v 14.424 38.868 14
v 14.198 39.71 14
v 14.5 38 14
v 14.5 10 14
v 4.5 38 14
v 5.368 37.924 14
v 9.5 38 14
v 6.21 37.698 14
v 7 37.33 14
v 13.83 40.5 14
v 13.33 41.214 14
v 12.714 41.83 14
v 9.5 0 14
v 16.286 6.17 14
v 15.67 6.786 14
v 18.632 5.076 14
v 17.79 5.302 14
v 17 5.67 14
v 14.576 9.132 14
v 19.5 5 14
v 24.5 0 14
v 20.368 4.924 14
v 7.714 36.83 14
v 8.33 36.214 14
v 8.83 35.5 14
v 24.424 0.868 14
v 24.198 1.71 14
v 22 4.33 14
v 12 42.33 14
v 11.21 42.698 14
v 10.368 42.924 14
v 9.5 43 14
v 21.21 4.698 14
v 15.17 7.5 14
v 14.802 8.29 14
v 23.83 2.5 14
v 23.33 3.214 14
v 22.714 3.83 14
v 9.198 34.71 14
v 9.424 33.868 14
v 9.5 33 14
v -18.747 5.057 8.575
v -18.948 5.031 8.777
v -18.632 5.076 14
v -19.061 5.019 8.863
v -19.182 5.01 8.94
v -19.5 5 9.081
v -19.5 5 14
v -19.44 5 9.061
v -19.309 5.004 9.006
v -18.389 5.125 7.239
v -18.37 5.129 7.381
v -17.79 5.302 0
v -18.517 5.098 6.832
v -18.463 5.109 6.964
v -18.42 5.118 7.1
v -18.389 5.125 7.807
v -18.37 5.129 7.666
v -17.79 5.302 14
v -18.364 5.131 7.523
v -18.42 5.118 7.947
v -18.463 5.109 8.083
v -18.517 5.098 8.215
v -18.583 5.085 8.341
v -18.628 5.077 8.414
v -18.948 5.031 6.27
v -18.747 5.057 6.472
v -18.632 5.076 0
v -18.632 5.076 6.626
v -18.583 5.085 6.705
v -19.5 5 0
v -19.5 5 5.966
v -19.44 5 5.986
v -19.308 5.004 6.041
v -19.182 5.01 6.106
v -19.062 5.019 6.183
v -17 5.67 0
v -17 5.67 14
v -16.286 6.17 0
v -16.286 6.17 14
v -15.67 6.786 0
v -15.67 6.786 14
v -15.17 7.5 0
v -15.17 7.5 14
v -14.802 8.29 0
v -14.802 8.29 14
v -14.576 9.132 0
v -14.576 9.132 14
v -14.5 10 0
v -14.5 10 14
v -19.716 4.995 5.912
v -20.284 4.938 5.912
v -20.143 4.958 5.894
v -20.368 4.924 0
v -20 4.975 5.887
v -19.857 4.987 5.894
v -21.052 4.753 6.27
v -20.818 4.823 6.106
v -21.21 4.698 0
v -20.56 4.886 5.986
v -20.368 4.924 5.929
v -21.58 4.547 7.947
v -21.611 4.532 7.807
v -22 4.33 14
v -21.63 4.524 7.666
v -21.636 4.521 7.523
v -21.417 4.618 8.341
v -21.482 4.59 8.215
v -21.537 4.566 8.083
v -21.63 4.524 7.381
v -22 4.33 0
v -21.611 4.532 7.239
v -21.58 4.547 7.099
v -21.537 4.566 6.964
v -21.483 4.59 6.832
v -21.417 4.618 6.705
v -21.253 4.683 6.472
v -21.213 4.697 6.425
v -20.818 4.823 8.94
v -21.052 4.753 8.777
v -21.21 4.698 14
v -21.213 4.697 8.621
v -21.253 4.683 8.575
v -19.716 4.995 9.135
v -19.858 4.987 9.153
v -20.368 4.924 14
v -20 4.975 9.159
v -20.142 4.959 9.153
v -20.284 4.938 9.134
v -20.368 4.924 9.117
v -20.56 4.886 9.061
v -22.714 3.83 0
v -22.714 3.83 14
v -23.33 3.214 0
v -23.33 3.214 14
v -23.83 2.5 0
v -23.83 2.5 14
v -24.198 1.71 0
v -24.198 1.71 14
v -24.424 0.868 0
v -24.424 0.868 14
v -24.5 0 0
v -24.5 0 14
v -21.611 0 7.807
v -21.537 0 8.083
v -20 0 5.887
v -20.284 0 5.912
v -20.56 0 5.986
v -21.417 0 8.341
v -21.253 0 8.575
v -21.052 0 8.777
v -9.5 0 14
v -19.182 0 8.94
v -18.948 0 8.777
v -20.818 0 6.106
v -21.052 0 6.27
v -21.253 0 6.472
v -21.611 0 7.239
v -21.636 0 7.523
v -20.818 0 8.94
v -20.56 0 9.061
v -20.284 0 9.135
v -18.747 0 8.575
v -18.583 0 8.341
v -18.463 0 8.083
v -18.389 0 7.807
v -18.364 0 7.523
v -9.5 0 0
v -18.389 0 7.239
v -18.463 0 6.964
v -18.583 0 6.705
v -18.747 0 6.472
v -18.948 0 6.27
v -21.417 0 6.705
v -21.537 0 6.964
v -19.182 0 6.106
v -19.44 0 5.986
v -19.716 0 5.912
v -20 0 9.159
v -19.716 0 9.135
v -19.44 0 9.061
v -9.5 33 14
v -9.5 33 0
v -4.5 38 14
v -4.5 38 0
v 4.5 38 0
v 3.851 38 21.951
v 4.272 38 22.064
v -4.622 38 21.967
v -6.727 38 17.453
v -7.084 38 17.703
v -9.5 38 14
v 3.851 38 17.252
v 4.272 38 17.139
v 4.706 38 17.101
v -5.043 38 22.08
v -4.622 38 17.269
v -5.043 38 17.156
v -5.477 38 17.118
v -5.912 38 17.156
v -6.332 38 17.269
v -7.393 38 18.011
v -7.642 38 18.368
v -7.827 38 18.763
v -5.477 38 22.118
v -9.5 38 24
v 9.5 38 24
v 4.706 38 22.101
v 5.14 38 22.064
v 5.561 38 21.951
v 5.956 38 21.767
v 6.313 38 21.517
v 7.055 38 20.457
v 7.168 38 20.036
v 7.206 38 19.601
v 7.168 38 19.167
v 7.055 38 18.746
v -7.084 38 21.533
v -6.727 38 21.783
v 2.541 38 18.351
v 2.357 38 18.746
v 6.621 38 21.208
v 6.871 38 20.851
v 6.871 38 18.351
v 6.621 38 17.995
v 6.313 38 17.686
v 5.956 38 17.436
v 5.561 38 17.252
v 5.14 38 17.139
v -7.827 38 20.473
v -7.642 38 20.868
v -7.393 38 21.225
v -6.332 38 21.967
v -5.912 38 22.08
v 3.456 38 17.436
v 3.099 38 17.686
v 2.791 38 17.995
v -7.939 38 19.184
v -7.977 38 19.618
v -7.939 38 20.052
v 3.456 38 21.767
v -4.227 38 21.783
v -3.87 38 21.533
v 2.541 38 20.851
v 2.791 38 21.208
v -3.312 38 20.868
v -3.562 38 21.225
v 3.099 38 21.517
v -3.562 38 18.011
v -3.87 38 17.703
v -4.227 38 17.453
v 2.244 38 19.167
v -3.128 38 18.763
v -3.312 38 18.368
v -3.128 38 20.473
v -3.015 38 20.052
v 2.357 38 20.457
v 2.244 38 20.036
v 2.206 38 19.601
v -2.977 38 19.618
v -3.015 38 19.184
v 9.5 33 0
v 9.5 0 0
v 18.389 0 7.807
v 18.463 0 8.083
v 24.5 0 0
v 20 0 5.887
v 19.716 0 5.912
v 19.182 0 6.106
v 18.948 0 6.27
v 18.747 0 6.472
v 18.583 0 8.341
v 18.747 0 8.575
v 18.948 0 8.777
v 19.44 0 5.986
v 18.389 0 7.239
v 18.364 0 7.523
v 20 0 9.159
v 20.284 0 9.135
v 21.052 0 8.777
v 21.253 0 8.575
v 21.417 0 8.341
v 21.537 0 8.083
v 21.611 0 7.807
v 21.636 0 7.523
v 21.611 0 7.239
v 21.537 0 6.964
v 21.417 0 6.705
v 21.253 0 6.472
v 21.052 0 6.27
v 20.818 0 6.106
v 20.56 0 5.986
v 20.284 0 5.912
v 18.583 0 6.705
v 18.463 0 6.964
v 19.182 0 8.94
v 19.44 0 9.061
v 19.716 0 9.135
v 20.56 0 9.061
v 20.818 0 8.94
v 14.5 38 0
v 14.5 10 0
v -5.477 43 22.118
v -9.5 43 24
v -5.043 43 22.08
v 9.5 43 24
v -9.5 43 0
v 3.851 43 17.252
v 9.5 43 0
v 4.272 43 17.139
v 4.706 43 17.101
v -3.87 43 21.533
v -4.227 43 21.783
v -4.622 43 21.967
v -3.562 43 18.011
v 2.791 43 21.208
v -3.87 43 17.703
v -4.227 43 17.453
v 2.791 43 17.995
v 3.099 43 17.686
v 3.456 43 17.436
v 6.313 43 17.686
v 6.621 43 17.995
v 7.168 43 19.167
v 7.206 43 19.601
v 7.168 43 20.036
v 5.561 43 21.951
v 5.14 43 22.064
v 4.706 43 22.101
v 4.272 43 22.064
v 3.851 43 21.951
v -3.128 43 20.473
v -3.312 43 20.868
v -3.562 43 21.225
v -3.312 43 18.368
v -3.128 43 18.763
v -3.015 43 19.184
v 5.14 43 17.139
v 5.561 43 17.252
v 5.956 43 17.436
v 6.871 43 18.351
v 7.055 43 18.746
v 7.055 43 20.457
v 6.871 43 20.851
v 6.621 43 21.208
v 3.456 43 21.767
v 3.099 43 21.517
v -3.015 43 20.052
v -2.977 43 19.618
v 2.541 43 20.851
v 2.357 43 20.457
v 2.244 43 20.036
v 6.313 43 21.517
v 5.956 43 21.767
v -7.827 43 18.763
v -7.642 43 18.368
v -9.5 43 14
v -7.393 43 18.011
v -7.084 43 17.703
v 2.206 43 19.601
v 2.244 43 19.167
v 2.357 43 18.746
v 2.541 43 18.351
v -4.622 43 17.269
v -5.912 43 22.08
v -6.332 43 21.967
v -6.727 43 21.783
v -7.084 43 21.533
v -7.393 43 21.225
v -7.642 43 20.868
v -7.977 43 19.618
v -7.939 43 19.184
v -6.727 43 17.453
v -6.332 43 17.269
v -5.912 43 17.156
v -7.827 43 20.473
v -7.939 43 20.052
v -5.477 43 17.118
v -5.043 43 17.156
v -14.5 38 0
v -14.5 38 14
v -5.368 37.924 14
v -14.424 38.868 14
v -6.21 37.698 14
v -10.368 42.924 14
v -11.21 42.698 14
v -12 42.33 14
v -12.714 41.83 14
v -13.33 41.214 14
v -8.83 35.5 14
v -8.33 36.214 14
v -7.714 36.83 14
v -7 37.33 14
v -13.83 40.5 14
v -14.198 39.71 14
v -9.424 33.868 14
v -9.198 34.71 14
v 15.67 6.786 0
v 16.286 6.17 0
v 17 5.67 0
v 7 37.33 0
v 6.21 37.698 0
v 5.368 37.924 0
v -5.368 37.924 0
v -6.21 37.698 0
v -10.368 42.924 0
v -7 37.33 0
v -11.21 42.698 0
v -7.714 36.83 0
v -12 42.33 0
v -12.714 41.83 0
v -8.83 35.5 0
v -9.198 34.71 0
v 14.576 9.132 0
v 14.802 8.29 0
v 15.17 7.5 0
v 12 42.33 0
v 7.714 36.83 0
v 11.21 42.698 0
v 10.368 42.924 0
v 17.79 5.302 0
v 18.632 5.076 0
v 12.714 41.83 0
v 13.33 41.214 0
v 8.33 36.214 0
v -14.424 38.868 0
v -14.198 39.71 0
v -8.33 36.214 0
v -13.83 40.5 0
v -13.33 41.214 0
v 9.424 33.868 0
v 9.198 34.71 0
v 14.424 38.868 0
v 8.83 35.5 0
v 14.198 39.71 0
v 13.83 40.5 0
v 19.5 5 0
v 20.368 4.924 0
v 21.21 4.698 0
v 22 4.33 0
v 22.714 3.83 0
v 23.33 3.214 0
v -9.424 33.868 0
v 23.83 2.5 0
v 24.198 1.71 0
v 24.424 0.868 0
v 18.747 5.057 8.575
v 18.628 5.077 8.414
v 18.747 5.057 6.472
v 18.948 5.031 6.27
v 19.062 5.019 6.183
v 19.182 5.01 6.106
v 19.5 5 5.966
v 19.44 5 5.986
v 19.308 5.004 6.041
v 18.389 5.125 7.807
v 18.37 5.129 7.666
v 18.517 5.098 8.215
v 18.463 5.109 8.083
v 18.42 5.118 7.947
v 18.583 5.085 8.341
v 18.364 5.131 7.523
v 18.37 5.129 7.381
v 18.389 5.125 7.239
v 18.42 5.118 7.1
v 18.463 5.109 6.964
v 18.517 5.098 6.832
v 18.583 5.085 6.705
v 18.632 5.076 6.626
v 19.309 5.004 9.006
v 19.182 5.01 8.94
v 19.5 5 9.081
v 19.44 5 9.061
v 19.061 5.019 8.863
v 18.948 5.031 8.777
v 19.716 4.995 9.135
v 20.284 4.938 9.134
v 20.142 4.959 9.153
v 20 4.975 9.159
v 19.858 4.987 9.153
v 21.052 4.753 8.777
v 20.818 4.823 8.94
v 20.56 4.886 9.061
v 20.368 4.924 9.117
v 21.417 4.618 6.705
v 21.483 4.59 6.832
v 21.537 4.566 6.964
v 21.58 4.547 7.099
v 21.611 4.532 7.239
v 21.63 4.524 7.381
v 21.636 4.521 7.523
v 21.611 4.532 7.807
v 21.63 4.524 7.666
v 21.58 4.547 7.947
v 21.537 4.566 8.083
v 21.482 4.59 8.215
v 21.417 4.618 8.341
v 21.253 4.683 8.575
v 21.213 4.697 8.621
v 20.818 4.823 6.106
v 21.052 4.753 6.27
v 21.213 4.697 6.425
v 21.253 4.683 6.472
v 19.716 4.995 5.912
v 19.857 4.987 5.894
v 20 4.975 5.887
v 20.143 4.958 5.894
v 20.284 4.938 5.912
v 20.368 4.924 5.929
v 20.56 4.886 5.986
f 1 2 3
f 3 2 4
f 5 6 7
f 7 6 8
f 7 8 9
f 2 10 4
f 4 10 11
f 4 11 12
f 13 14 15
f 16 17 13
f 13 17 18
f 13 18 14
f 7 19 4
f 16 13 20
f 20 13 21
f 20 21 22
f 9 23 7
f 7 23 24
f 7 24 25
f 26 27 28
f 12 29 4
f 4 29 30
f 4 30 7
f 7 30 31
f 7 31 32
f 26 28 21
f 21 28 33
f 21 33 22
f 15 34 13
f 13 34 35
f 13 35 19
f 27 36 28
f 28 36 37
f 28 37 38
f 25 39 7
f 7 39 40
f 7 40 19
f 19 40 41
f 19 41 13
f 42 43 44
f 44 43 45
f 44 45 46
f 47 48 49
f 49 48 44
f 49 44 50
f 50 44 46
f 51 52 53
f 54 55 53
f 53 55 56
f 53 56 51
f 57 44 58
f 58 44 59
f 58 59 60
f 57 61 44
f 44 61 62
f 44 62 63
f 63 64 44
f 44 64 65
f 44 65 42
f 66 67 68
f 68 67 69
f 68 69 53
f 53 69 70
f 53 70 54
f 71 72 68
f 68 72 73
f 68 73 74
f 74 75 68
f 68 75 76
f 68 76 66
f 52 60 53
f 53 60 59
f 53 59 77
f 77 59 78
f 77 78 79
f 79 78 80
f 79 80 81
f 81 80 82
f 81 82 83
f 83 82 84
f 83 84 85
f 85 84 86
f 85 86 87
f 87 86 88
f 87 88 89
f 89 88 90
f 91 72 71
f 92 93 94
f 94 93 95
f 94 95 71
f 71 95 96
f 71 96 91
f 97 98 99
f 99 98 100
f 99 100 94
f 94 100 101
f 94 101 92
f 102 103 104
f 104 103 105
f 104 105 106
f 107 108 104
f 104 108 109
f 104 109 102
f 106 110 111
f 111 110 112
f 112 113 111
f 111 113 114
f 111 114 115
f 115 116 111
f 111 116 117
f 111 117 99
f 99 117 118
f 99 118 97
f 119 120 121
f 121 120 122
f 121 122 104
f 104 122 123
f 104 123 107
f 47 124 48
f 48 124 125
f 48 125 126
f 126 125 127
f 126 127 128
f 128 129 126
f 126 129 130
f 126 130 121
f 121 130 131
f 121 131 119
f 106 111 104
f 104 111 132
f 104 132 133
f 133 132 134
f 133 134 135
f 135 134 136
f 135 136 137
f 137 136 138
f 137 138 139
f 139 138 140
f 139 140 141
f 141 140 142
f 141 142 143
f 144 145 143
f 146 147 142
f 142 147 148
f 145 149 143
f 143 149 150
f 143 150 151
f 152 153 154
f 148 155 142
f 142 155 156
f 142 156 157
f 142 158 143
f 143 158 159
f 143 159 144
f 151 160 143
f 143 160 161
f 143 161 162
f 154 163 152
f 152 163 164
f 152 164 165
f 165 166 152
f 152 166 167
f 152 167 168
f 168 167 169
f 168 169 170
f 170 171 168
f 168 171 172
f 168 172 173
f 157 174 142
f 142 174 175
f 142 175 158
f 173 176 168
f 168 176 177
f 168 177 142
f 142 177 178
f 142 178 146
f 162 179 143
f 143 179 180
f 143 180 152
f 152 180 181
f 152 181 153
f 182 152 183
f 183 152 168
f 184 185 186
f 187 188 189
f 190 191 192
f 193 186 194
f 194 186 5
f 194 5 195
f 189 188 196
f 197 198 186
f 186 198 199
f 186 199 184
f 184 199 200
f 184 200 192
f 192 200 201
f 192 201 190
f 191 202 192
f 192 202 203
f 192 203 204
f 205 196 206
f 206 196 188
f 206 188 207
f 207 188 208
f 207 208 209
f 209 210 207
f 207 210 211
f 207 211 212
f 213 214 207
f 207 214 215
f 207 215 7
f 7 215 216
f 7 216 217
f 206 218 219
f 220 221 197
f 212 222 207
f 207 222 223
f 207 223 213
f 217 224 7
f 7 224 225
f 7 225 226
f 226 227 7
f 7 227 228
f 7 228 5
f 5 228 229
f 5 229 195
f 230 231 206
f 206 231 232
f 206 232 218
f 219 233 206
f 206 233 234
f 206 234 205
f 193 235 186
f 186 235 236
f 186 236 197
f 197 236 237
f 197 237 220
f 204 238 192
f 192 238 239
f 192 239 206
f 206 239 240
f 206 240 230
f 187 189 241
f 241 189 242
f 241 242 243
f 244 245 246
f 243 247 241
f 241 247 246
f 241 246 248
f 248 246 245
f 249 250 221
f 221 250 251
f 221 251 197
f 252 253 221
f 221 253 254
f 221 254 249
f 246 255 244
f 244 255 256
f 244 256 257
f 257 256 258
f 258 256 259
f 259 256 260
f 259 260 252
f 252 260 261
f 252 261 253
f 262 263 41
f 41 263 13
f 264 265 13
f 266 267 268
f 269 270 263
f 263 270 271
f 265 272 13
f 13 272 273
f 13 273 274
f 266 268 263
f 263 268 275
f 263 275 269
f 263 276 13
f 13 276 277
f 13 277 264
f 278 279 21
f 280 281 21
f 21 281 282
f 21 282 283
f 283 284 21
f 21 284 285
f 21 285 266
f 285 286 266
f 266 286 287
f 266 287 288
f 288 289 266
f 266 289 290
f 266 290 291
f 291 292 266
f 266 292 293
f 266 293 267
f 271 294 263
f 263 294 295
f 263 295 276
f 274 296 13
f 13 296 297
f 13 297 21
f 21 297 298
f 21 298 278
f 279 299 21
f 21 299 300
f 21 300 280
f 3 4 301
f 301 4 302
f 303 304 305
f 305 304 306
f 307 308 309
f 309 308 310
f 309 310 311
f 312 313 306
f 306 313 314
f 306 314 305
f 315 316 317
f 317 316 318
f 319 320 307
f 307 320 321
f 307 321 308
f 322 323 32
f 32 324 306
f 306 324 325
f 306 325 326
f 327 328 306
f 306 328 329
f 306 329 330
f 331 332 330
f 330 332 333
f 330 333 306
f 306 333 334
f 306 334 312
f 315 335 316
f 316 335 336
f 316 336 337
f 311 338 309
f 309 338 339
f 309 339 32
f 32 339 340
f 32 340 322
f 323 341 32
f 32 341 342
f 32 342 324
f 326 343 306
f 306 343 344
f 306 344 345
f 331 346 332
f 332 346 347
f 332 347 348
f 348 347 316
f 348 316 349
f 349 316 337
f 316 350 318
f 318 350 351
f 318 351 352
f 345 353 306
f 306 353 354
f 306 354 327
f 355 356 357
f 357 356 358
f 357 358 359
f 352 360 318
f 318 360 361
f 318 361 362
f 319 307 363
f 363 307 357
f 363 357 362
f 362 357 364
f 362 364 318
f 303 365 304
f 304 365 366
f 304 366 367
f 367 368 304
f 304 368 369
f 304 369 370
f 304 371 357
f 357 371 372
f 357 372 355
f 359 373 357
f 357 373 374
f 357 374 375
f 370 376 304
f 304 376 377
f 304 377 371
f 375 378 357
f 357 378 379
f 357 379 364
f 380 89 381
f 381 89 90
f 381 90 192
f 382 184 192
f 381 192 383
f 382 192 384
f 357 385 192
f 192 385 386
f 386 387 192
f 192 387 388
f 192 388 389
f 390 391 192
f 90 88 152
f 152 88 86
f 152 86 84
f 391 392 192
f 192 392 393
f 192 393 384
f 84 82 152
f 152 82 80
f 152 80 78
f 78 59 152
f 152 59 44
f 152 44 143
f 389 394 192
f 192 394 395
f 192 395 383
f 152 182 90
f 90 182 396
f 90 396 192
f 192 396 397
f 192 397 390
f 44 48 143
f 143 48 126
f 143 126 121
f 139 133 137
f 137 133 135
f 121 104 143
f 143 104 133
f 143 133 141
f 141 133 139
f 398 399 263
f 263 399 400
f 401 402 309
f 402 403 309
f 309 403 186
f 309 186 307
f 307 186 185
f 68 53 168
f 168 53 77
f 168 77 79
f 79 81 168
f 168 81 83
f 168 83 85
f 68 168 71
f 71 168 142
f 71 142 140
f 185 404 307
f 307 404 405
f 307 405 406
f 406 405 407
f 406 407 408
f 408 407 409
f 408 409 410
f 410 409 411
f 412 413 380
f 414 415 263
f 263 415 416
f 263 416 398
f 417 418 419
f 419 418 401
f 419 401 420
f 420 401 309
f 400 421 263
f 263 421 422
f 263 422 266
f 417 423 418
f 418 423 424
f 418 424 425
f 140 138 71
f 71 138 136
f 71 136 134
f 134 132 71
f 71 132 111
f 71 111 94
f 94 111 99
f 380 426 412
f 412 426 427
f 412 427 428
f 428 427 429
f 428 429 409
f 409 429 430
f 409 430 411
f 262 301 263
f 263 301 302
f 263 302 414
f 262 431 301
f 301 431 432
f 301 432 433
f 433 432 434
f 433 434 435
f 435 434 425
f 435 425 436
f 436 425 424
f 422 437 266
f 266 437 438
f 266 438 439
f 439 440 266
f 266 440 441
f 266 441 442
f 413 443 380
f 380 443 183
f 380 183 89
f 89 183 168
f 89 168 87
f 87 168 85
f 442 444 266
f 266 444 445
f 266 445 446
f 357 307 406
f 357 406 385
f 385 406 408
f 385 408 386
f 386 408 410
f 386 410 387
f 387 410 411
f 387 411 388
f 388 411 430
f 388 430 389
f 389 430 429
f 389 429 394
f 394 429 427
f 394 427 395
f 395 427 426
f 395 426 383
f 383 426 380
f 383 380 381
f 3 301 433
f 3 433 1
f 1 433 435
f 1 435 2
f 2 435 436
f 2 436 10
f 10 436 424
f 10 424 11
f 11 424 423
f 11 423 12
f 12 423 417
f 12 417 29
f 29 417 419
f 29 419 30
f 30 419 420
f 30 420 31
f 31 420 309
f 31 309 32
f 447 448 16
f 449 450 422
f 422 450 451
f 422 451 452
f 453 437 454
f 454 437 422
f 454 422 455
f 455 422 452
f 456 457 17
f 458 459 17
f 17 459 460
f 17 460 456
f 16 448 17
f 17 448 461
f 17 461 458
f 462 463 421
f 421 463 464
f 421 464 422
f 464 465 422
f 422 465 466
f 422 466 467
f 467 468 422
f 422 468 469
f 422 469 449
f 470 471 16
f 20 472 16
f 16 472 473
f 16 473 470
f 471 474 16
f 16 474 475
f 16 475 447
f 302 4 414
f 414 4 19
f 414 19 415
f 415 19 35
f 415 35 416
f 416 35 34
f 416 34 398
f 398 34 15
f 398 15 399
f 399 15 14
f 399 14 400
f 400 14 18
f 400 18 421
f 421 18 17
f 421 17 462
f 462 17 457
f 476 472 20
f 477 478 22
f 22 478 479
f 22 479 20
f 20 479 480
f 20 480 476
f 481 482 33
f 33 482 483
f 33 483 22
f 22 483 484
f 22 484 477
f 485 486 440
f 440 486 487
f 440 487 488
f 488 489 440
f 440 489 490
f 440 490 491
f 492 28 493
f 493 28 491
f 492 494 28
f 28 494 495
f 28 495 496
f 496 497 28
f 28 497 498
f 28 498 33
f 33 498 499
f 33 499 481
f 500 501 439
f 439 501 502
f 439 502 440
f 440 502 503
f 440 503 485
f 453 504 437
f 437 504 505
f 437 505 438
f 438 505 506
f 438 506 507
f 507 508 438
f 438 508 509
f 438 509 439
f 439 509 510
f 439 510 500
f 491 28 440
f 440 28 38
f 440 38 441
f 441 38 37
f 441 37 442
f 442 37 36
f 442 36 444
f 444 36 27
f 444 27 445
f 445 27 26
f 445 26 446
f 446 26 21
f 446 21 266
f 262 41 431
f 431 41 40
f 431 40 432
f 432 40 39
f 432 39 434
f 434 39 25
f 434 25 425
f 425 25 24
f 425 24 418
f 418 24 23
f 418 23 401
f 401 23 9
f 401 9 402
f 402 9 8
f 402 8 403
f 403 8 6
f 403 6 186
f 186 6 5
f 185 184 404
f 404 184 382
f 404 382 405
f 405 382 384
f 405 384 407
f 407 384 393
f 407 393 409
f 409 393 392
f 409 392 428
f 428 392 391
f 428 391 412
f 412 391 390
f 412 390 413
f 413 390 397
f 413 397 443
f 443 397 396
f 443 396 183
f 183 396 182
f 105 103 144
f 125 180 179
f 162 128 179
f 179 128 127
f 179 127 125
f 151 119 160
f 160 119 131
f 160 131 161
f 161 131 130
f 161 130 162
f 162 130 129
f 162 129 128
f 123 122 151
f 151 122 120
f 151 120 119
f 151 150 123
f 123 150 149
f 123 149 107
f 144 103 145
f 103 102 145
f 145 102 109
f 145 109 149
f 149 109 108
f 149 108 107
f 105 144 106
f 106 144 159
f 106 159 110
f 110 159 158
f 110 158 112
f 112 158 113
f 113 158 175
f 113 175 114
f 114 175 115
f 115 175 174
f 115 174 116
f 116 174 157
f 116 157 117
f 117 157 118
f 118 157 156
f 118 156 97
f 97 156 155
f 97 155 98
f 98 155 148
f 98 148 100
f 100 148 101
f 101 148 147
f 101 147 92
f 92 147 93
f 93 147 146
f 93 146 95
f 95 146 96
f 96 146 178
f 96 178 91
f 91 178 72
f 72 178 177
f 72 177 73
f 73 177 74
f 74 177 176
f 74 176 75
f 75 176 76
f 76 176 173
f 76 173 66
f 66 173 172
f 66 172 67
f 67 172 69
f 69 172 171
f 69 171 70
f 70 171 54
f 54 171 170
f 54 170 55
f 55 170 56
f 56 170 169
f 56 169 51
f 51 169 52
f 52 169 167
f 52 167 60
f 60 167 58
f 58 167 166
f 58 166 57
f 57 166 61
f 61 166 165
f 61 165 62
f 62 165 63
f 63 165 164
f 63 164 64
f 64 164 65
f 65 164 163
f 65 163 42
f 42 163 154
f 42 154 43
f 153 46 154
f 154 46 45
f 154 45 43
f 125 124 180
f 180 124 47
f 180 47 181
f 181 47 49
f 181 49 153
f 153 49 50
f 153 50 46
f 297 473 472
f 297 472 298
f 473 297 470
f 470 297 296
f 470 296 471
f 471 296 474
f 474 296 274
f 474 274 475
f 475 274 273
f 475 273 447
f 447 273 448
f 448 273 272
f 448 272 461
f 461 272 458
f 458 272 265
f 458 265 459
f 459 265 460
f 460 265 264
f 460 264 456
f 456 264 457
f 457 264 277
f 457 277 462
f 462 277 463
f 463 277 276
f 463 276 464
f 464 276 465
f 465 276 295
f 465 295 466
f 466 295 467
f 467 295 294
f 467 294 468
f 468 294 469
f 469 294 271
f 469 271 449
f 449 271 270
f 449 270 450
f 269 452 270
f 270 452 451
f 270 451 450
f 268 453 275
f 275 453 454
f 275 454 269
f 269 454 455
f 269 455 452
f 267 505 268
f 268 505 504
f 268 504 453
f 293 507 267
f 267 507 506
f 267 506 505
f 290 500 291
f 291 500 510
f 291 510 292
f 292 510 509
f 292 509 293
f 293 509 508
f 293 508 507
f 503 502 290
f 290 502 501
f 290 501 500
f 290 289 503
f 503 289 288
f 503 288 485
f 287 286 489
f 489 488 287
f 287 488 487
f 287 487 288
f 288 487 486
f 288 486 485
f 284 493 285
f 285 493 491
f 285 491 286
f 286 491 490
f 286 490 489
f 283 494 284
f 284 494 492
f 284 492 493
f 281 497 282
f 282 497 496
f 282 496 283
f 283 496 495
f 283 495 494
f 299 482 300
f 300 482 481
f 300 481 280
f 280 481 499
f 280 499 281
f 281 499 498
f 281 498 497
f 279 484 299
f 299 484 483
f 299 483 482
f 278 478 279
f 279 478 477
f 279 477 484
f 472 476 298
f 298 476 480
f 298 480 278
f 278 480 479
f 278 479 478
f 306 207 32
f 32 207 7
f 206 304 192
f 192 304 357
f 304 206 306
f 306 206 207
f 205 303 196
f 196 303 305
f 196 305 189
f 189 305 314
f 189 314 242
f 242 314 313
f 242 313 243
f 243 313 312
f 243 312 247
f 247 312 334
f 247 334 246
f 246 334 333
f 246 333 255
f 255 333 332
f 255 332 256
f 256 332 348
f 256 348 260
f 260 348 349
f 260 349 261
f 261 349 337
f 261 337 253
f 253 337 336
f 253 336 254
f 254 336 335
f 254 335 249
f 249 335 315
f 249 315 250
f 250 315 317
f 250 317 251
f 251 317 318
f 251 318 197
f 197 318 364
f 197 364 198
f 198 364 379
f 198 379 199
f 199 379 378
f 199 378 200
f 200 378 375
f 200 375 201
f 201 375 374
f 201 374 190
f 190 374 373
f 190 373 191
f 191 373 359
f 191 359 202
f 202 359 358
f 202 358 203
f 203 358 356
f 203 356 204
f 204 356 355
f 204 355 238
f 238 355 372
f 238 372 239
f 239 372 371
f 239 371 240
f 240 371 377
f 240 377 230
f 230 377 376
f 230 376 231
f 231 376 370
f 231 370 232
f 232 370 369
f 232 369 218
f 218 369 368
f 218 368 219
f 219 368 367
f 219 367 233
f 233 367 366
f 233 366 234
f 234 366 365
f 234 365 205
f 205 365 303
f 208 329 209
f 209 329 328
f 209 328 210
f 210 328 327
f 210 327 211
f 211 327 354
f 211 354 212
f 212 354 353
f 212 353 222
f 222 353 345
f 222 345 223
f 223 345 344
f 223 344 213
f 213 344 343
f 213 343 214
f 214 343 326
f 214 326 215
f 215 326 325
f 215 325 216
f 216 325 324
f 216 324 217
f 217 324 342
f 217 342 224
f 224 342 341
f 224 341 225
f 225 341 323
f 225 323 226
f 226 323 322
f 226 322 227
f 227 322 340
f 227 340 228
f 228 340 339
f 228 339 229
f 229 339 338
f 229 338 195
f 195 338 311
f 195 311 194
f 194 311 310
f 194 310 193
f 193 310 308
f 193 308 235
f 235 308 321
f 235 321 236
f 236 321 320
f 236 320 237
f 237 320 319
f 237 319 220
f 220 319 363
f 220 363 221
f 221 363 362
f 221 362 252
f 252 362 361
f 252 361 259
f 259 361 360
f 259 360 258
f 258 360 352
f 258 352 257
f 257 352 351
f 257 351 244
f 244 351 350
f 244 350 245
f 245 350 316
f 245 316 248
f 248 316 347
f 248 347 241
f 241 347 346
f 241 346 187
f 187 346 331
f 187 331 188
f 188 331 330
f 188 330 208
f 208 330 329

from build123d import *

# Parameters (mm, degrees)
BOSS_EXTRUDE1_DEPTH     = 14
FILLET1_R               = 5
FILLET2_R               = 5
CUT_EXTRUDE3_DEPTH      = 10
CUT_EXTRUDE3_DEPTH_BACK = 10
SKETCH2_R               = 1.636049027
SKETCH4_W               = 19
SKETCH4_H               = 5
BOSS_EXTRUDE2_DEPTH     = 10
SKETCH5_R               = 2.5
CUT_EXTRUDE4_DEPTH      = 10


with BuildPart() as part:
    # Sketch1 → Boss-Extrude1 (new body)
    with BuildSketch(Plane.XY):
        Polygon((-24.5, 0), (-24.5, 5), (-14.5, 5), (-14.5, 43), (14.5, 43), (14.5, 5), (24.5, 5), (24.5, 0), (9.5, 0), (9.5, 38), (-9.5, 38), (-9.5, 0), align=None)
    extrude(amount=BOSS_EXTRUDE1_DEPTH)

    # Fillet1
    fillet1_edges = [part.edges().sort_by_distance(p)[0] for p in [
        (-14.5, 43, 7),
        (14.5, 43, 7),
        (24.5, 5, 7),
        (-24.5, 5, 7),
        (14.5, 5, 7),
        (-14.5, 5, 7),
    ]]
    fillet(fillet1_edges, radius=FILLET1_R - 0.0001)  # a hair under: the kernel refuses the full size

    # Fillet2
    fillet2_edges = [part.edges().sort_by_distance(p)[0] for p in [
        (9.5, 38, 7),
        (-9.5, 38, 7),
    ]]
    fillet(fillet2_edges, radius=FILLET2_R)

    # Sketch2 → Cut-Extrude3 (cut, two sides: drawn at the far end of the back side and taken through both)
    with BuildSketch(Plane(origin=(0, 0, 0), x_dir=(1, 0, 0), z_dir=(0, 1, 0)).offset(-CUT_EXTRUDE3_DEPTH_BACK)):
        with Locations(Location((-20, -7.523321805, 0), (0, 0, 72.20487372))):
            Circle(SKETCH2_R)
        with Locations(Location((20, -7.523321805, 0), (0, 0, 107.795126278))):
            Circle(SKETCH2_R)
    extrude(amount=CUT_EXTRUDE3_DEPTH + CUT_EXTRUDE3_DEPTH_BACK, mode=Mode.SUBTRACT)

    # Sketch4 → Boss-Extrude2 (add)
    with BuildSketch(Plane.XY.offset(14)):
        with Locations((0, 40.5)):
            Rectangle(SKETCH4_W, SKETCH4_H)
    extrude(amount=BOSS_EXTRUDE2_DEPTH)

    # Sketch5 → Cut-Extrude4 (cut)
    with BuildSketch(Plane(origin=(0, 43, 0), x_dir=(1, 0, 0), z_dir=(0, 1, 0))):
        with Locations(Location((4.70575, -19.60149527, 0), (0, 0, 270))):
            Circle(SKETCH5_R)
        with Locations(Location((-5.477408827, -19.618067384, 0), (0, 0, 270))):
            Circle(SKETCH5_R)
    extrude(amount=-CUT_EXTRUDE4_DEPTH, mode=Mode.SUBTRACT)


solid = part.part
